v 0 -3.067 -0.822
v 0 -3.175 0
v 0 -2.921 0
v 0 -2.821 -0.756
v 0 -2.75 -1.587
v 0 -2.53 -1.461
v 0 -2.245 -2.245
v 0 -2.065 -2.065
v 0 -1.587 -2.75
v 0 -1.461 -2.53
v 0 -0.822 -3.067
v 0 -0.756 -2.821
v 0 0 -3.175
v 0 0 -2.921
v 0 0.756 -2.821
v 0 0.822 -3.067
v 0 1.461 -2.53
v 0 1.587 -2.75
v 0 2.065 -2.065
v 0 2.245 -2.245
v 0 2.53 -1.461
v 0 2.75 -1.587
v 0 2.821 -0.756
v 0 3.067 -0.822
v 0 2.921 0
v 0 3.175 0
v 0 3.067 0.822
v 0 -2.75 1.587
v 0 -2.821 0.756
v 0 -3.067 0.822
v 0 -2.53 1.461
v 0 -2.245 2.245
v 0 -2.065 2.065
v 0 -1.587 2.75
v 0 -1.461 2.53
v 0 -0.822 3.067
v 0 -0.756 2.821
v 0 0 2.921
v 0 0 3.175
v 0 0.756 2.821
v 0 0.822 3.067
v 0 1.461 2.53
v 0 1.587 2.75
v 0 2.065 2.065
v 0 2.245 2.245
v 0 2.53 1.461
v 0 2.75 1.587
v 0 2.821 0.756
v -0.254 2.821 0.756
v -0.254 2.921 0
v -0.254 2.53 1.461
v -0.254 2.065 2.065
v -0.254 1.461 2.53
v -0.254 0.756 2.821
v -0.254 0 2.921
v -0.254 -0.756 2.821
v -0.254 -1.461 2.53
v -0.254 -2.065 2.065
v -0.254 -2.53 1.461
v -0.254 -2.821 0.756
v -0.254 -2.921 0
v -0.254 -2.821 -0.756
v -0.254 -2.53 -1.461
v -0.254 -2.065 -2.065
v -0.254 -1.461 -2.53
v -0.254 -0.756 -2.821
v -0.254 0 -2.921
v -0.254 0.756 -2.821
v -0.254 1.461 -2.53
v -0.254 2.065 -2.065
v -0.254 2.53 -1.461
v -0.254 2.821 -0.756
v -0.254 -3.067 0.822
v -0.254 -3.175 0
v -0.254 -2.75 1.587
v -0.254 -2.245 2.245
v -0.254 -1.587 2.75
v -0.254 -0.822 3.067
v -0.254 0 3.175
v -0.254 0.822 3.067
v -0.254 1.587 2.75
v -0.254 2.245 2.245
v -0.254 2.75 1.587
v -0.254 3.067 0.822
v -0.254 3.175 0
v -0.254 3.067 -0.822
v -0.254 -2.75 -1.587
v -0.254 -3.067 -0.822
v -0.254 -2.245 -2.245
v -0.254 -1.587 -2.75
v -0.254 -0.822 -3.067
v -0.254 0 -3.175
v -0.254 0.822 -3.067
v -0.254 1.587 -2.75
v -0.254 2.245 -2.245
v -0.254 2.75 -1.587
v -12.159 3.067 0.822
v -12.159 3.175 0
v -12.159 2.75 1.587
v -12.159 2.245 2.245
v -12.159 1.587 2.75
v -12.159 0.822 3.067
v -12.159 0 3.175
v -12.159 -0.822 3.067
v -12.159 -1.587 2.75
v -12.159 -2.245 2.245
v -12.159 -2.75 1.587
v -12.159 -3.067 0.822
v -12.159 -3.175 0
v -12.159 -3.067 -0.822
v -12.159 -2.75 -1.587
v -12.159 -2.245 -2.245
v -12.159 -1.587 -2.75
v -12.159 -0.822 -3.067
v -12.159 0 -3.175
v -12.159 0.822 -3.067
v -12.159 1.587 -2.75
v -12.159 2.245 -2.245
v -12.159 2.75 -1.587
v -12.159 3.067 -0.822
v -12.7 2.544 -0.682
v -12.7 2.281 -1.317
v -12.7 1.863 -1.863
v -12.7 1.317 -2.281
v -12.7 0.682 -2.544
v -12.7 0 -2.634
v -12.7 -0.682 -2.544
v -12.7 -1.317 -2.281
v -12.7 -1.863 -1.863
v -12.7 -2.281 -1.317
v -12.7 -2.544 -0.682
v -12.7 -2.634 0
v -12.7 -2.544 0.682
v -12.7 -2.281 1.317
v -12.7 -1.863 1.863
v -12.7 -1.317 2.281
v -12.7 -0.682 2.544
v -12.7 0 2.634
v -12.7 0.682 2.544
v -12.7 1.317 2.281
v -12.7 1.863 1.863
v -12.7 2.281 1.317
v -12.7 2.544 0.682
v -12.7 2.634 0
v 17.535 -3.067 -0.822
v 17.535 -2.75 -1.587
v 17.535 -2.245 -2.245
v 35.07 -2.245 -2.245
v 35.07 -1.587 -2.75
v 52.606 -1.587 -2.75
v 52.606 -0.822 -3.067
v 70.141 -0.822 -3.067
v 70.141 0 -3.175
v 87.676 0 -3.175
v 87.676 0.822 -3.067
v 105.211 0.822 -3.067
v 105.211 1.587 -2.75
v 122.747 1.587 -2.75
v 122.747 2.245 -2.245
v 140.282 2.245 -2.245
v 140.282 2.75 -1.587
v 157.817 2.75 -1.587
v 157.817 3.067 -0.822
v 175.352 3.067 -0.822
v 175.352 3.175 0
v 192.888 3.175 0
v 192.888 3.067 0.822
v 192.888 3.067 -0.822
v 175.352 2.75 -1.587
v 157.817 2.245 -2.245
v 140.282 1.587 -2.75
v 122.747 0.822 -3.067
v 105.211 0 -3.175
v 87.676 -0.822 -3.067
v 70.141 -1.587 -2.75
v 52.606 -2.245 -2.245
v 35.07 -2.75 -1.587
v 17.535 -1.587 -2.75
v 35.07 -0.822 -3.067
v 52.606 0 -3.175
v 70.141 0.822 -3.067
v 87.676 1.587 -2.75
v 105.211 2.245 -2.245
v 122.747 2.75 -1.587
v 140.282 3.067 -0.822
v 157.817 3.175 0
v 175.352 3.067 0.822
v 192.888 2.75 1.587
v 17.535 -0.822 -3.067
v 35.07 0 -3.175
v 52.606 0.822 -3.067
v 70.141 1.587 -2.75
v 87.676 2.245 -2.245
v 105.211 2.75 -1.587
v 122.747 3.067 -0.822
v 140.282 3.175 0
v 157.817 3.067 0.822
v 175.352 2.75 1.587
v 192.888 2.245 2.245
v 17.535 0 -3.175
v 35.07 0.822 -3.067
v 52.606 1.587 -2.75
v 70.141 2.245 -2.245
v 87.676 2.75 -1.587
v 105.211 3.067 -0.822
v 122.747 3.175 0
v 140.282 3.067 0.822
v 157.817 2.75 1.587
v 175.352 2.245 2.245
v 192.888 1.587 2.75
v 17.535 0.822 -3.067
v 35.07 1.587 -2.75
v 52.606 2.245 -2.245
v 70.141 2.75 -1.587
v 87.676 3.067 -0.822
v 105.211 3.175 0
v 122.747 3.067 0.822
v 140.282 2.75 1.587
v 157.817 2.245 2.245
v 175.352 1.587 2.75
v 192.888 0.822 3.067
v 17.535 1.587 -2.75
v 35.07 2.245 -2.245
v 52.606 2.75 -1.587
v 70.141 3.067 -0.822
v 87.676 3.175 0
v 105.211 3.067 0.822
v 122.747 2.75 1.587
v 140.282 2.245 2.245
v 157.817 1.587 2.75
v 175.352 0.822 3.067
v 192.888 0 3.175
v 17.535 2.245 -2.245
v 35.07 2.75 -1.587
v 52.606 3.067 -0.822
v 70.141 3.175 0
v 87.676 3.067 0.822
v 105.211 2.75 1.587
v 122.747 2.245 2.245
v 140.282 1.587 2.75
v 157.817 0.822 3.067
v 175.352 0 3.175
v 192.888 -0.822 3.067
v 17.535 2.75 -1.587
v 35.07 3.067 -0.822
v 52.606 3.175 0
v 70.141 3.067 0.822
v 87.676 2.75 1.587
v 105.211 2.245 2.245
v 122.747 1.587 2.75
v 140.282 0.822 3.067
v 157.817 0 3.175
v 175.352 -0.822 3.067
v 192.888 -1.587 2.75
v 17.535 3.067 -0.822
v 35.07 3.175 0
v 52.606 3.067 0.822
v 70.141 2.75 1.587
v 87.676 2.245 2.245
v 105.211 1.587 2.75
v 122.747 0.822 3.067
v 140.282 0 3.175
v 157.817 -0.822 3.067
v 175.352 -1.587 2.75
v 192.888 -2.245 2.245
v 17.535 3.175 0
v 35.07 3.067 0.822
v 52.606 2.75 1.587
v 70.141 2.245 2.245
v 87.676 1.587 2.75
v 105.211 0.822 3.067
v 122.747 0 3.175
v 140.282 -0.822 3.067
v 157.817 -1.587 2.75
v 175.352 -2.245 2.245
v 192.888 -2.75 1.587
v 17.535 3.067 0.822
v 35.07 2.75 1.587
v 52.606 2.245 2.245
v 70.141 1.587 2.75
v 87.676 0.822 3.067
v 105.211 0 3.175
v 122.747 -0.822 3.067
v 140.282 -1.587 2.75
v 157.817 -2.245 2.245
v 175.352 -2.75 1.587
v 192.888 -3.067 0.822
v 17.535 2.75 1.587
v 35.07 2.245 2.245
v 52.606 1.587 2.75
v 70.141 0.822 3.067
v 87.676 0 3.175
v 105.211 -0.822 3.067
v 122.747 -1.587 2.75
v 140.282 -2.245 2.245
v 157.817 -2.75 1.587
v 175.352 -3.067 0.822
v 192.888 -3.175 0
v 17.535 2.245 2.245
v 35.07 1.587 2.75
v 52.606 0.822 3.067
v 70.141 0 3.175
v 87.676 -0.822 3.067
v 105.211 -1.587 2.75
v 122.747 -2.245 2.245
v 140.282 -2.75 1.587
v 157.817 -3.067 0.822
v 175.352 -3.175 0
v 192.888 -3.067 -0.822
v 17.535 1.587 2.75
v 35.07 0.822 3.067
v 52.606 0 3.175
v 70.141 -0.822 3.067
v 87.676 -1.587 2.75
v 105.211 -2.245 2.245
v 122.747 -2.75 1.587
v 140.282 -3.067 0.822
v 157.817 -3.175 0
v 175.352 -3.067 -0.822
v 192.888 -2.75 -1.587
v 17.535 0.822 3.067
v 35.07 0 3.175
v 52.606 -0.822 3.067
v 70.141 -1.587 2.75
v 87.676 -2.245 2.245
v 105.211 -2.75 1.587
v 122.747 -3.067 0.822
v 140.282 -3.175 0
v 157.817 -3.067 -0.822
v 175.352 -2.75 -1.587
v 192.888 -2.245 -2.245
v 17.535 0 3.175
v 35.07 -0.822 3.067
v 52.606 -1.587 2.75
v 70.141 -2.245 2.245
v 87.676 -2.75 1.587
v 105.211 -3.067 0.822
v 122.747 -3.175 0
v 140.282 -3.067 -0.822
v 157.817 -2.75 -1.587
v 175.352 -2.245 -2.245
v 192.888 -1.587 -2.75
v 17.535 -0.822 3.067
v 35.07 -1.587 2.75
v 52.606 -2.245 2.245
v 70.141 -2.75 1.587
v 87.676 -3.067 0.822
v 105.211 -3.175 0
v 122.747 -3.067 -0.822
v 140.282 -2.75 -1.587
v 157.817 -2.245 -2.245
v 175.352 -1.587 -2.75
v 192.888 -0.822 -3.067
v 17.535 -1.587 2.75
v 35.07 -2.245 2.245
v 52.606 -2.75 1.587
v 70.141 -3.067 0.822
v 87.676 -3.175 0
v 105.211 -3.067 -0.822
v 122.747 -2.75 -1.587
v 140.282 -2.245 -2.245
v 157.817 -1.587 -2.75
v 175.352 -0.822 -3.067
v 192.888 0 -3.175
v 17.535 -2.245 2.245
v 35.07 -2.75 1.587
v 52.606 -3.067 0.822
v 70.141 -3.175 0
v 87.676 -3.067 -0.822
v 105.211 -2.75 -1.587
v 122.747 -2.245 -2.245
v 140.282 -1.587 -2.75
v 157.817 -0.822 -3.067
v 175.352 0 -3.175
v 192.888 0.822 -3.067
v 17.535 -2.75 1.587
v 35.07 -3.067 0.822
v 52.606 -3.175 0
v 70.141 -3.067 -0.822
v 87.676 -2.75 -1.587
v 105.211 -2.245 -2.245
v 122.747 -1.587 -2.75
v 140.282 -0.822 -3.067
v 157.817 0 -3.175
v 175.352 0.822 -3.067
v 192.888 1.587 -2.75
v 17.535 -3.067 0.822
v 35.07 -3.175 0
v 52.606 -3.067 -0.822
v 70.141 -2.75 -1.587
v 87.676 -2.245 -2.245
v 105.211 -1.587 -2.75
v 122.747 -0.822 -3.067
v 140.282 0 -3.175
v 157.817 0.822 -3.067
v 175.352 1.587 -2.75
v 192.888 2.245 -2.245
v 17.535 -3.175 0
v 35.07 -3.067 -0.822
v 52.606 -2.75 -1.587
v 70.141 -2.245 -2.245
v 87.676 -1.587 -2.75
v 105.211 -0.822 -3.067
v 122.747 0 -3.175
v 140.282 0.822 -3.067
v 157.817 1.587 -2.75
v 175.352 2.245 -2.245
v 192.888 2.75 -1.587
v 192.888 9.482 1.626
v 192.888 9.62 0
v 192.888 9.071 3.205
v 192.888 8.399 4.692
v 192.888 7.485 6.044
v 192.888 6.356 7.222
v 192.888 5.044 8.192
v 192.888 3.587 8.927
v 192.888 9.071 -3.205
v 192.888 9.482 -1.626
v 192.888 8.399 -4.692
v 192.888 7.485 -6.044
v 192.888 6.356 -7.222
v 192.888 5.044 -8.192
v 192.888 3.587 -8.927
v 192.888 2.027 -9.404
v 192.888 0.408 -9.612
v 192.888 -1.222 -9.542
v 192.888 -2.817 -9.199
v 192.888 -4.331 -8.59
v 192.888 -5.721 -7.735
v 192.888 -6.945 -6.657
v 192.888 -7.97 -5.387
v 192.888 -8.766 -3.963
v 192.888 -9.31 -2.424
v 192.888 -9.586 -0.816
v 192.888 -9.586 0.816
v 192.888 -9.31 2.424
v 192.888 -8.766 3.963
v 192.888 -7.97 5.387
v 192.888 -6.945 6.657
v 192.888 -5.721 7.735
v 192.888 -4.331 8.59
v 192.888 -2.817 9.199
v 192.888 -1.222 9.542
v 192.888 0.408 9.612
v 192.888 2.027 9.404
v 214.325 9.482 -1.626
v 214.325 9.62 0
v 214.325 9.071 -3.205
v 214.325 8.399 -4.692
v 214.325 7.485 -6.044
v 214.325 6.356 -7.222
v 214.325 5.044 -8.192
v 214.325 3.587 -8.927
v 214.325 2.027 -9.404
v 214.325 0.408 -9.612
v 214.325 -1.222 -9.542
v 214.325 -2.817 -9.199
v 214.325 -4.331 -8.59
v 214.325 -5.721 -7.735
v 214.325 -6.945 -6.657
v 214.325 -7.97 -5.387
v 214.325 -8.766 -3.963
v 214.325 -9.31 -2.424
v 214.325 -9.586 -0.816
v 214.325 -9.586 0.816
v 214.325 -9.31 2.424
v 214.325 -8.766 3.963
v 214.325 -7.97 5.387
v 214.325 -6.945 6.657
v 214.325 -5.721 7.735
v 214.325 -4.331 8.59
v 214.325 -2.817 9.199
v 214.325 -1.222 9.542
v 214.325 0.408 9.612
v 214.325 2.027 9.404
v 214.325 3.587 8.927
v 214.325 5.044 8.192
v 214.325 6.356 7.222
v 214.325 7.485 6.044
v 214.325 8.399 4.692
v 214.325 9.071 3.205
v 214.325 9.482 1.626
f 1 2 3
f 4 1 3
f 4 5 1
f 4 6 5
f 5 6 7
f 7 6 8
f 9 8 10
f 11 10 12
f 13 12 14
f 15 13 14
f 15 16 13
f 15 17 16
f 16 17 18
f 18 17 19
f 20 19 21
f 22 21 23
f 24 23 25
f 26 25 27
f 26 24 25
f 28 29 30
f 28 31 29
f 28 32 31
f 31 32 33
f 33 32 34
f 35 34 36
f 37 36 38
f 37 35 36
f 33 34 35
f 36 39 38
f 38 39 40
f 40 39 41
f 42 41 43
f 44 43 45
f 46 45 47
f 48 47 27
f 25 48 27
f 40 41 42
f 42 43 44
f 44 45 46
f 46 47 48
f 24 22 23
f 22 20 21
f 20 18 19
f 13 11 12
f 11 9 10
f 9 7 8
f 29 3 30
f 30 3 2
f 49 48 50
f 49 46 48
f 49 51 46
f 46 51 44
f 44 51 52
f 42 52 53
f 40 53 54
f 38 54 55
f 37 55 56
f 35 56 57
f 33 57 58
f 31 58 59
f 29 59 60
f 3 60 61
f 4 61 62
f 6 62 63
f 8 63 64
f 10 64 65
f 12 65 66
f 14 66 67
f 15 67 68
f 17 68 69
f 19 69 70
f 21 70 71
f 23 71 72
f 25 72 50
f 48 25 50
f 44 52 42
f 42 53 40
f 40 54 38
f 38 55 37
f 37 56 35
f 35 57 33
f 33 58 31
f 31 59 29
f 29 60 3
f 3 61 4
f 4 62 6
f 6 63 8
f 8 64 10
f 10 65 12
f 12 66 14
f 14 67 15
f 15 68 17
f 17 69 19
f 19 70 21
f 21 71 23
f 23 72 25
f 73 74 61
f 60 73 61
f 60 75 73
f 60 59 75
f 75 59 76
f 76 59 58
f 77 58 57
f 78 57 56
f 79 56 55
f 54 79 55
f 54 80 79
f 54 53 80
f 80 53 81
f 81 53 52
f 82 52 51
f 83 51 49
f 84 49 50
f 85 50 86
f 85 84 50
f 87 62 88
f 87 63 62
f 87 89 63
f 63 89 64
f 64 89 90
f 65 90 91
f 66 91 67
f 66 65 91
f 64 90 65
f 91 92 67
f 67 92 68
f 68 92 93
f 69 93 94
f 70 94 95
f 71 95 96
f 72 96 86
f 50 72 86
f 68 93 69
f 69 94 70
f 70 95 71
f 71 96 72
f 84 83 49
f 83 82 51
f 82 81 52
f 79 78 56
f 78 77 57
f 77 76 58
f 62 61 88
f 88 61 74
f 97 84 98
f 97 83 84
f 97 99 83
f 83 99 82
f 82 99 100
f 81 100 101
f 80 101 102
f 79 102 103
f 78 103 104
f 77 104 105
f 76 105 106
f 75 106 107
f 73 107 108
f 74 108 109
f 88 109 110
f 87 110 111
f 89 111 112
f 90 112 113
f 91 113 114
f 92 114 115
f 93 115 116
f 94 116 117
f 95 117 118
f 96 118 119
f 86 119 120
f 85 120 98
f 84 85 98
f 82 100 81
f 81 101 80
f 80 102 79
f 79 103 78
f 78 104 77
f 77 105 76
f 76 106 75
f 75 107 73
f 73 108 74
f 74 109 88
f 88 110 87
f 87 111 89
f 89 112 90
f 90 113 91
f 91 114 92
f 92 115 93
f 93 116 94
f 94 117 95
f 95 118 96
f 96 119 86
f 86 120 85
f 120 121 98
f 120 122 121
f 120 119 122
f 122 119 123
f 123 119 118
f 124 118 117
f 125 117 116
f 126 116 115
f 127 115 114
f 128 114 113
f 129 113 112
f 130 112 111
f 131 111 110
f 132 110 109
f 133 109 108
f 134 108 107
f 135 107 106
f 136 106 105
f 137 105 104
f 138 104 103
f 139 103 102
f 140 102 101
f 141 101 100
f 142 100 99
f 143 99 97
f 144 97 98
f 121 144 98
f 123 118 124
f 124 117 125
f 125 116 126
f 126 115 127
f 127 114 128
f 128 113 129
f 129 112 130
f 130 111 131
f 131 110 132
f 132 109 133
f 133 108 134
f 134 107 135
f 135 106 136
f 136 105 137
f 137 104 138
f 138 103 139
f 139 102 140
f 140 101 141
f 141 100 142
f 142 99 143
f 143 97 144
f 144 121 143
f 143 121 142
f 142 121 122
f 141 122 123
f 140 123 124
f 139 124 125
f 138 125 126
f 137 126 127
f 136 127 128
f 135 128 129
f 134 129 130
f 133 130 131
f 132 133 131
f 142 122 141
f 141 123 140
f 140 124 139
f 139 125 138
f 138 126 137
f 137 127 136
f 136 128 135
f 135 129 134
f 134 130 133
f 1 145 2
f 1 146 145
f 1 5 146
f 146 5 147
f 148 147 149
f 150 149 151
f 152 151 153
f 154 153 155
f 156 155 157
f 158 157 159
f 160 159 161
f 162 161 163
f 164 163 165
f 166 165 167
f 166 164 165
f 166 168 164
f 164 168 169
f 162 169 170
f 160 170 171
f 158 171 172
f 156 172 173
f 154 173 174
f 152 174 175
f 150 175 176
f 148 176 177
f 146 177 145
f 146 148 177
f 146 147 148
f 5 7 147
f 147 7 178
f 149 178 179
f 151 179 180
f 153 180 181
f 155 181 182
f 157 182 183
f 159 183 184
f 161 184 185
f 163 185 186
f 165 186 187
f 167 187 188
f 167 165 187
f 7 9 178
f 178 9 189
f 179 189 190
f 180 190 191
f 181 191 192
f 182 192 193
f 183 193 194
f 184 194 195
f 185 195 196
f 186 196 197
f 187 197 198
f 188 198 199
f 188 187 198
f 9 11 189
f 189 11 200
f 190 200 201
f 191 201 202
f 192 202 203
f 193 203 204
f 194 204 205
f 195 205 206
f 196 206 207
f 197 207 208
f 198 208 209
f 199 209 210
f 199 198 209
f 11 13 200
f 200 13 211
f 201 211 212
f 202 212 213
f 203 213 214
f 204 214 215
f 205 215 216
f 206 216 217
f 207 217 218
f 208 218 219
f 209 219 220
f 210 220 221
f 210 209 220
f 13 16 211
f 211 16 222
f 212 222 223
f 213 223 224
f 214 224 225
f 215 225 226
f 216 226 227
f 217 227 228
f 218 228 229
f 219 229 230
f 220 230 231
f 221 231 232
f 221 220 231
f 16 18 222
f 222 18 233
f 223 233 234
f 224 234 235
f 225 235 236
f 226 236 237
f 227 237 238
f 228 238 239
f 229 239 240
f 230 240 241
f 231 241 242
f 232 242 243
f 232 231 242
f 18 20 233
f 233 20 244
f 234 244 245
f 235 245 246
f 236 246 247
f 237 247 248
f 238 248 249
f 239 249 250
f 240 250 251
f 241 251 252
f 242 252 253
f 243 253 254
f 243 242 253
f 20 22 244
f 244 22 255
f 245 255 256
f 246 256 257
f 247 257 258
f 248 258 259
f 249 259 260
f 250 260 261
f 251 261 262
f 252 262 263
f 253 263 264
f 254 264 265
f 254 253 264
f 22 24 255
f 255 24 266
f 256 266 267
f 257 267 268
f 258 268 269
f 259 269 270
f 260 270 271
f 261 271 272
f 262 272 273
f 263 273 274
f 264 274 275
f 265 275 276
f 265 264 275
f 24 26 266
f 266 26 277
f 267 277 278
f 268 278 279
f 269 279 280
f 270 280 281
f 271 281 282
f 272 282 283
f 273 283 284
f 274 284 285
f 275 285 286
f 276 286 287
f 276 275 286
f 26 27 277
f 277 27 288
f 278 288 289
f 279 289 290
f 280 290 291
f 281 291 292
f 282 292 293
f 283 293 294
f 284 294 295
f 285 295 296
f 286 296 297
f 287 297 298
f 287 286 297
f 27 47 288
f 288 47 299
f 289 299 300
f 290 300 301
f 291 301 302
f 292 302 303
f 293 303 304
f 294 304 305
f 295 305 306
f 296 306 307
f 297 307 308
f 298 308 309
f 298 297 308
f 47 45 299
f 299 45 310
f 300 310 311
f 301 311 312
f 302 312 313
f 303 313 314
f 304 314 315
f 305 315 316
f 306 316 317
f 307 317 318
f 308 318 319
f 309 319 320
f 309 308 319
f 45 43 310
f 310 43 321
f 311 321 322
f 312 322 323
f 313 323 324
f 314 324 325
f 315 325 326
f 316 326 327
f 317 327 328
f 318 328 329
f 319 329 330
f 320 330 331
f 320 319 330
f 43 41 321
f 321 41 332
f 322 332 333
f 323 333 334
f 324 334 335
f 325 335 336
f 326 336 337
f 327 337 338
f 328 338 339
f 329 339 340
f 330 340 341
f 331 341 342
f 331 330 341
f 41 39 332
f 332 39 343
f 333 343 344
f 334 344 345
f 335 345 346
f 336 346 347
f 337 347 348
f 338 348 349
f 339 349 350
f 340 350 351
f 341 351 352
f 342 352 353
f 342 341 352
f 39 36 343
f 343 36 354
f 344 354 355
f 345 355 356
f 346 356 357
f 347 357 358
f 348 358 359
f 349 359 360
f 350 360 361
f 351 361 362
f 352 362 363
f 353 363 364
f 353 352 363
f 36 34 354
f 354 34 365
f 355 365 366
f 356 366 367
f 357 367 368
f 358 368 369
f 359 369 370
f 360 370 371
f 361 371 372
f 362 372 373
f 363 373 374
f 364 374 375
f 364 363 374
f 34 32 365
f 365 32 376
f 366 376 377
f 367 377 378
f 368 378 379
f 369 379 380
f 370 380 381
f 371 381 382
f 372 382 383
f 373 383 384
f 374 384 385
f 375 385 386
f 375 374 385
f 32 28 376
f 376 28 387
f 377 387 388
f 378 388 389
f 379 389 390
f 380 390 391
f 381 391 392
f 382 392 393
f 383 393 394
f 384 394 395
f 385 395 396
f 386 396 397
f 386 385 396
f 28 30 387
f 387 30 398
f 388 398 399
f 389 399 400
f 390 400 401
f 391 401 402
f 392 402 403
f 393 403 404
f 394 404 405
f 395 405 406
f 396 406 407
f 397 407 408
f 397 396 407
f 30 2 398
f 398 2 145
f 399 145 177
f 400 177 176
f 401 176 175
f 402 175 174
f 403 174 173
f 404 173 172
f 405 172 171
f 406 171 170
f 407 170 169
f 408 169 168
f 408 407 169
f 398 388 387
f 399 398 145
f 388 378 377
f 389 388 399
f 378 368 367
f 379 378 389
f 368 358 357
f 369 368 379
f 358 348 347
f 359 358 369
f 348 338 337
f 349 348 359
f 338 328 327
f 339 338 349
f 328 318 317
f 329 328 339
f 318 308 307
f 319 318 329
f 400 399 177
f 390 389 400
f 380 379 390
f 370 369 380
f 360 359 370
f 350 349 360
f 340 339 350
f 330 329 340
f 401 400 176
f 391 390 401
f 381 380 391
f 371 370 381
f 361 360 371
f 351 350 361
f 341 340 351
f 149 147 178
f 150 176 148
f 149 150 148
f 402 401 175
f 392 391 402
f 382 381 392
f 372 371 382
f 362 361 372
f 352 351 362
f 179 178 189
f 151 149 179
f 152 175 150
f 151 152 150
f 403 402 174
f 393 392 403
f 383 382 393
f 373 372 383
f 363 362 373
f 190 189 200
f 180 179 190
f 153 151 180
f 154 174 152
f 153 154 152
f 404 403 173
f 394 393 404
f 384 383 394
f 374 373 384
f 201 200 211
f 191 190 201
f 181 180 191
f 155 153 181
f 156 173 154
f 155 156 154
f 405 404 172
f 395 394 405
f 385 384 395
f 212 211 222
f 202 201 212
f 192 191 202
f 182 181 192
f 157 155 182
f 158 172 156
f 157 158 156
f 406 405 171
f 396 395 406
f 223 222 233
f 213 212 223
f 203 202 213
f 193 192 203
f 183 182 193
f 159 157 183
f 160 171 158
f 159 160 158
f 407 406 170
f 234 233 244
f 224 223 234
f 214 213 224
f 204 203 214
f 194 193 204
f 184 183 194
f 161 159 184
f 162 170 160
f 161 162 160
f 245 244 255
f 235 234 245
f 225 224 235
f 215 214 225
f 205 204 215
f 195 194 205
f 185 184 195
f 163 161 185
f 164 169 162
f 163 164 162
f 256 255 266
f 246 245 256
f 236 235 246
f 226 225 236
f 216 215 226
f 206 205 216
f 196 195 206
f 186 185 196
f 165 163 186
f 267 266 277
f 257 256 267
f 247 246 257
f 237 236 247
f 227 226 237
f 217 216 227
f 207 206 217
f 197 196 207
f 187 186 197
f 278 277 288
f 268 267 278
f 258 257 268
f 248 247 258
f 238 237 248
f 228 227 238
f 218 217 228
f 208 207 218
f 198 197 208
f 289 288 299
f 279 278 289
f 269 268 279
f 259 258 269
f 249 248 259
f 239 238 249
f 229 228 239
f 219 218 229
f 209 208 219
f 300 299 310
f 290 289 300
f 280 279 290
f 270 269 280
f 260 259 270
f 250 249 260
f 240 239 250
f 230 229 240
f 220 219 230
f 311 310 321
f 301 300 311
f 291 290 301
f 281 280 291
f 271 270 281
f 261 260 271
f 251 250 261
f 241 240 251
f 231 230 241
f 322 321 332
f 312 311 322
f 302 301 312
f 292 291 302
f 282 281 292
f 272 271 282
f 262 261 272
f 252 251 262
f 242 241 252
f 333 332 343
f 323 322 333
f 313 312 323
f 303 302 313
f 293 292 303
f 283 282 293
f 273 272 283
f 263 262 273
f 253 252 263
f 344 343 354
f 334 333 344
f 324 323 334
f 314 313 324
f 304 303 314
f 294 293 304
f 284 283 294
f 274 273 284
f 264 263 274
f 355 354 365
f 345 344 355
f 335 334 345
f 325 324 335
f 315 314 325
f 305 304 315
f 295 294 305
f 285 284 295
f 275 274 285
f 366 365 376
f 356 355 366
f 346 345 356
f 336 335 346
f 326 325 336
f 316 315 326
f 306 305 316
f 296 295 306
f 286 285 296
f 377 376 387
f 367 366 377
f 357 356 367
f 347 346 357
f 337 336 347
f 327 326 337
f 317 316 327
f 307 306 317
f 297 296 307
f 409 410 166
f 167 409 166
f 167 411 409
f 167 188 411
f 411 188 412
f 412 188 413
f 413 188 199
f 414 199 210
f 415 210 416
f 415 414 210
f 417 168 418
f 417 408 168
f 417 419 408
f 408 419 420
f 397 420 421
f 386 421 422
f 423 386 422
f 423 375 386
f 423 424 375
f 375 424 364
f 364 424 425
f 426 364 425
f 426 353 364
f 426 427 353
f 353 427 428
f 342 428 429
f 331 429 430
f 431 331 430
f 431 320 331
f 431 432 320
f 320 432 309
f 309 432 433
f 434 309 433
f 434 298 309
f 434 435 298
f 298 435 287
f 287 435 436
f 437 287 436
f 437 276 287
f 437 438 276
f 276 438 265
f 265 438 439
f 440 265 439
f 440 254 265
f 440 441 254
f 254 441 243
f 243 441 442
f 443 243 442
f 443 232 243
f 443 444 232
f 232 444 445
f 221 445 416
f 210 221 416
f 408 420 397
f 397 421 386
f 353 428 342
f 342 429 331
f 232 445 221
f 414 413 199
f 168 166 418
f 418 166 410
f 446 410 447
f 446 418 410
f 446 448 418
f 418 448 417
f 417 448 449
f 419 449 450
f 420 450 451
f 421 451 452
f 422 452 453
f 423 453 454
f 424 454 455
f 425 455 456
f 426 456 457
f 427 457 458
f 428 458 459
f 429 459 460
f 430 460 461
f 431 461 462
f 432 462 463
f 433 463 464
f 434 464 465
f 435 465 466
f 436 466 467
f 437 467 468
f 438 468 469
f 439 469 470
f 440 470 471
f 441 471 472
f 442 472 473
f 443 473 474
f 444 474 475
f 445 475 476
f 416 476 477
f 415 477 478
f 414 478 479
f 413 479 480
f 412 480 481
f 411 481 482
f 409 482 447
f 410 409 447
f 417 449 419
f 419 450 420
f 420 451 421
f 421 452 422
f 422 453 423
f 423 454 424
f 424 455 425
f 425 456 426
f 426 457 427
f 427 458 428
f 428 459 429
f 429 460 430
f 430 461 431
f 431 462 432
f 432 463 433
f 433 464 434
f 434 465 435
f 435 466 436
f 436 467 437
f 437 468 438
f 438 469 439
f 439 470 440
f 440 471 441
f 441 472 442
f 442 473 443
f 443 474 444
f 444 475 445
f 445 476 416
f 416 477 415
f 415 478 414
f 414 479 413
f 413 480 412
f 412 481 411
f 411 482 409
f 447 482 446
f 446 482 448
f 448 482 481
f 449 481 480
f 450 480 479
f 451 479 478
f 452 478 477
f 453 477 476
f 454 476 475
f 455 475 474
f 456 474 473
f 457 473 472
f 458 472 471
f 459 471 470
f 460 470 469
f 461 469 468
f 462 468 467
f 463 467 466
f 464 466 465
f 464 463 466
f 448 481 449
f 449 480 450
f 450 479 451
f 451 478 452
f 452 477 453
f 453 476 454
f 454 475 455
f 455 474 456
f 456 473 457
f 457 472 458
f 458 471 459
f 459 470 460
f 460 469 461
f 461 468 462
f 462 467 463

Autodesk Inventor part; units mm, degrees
sketch "Sketch_1" plane through (0, 0, 0) normal (0, 0, 1) x (1, 0, 0)
  line L0 (214.3252, 0) -> (0, 0)
  line L1 (0, 0) -> (0, 3.175)
  line L2 (0, 3.175) -> (192.8876, 3.175)
  line L3 (192.8876, 3.175) -> (192.8876, 9.6203)
  line L4 (192.8876, 9.6203) -> (214.3252, 9.6203)
  line L5 (214.3252, 9.6203) -> (214.3252, 0)
  line L6 (214.3252, 0) -> (0, 0)
revolve "Revolution1" add sketch "Sketch_1" angle 360 about axis through (214.3252, 0, 0) along (1, 0, 0)
sketch "Sketch_3" plane through (0, 0, 0) normal (0, 0, 1) x (1, 0, 0)
  line L0 (0, 0) -> (-12.7, 0)
  line L1 (-12.7, 0) -> (-12.7, 2.634)
  line L2 (-12.7, 2.634) -> (-12.159, 3.175)
  line L3 (-12.159, 3.175) -> (0, 3.175)
  line L4 (0, 3.175) -> (0, 0)
  line L5 (0, 0) -> (-12.7, 0)
revolve "Revolution2" add sketch "Sketch_3" angle 360 about axis through (0, 0, 0) along (1, 0, 0)
thread "Thread1" size "1/4-28 UNF" class "3A" standard "ANSI Unified Screw Threads" length 12.7 offset 192.8876
sketch "Sketch_30" plane through (0, 0, 0) normal (0, 0, 1) x (1, 0, 0)
  line L0 (0, 0) -> (-0.254, 0)
  line L1 (-0.254, 3.429) -> (-0.254, 2.921)
  line L2 (-0.254, 2.921) -> (0, 2.921)
  line L3 (0, 2.921) -> (0, 3.429)
  line L4 (0, 3.429) -> (-0.254, 3.429)
revolve "Revolution3" cut sketch "Sketch_30" angle 360 about axis through (0, 0, 0) along (1, 0, 0)
ref_plane "rod_cp_XY" through (0, 0, 0) normal (1, 0, 0) x (0, 0, -1)
ref_plane "rod_cp_YZ" through (0, 0, 0) normal (0, 0, -1) x (0, 1, 0)
ref_plane "rod_cp_ZX" through (0, 0, 0) normal (0, 1, 0) x (1, 0, 0)
ref_plane "to_rod_clevis_XY" through (-12.7, 0, 0) normal (1, 0, 0) x (0, 0, -1)
ref_plane "to_rod_clevis_YZ" through (-12.7, 0, 0) normal (0, 0, -1) x (0, 1, 0)
ref_plane "to_rod_clevis_ZX" through (-12.7, 0, 0) normal (0, 1, 0) x (1, 0, 0)
ref_plane "rl2_XY" through (0, 0, 0) normal (1, 0, 0) x (0, 0, -1)
ref_plane "rl2_YZ" through (0, 0, 0) normal (0, 0, -1) x (0, 1, 0)
ref_plane "rl2_ZX" through (0, 0, 0) normal (0, 1, 0) x (1, 0, 0)
ref_plane "rl1_XY" through (-12.7, 0, 0) normal (1, 0, 0) x (0, 0, -1)
ref_plane "rl1_YZ" through (-12.7, 0, 0) normal (0, 0, -1) x (0, 1, 0)
ref_plane "rl1_ZX" through (-12.7, 0, 0) normal (0, 1, 0) x (1, 0, 0)
ref_plane "thd1_XY" through (-12.7, 3.175, 0) normal (1, 0, 0) x (0, 0, -1)
ref_plane "thd1_YZ" through (-12.7, 3.175, 0) normal (0, 0, -1) x (0, 1, 0)
ref_plane "thd1_ZX" through (-12.7, 3.175, 0) normal (0, 1, 0) x (1, 0, 0)
ref_plane "thd2_XY" through (-12.7, -3.175, 0) normal (1, 0, 0) x (0, 0, -1)
ref_plane "thd2_YZ" through (-12.7, -3.175, 0) normal (0, 0, -1) x (0, 1, 0)
ref_plane "thd2_ZX" through (-12.7, -3.175, 0) normal (0, 1, 0) x (1, 0, 0)
ref_plane "dia1_XY" through (0, 3.175, 0) normal (1, 0, 0) x (0, 0, -1)
ref_plane "dia1_YZ" through (0, 3.175, 0) normal (0, 0, -1) x (0, 1, 0)
ref_plane "dia1_ZX" through (0, 3.175, 0) normal (0, 1, 0) x (1, 0, 0)
ref_plane "dia2_XY" through (0, -3.175, 0) normal (1, 0, 0) x (0, 0, -1)
ref_plane "dia2_YZ" through (0, -3.175, 0) normal (0, 0, -1) x (0, 1, 0)
ref_plane "dia2_ZX" through (0, -3.175, 0) normal (0, 1, 0) x (1, 0, 0)
ref_plane "hh1_XY" through (244.4496, 0, 0) normal (0, 0, 1) x (1, 0, 0)
ref_plane "hh1_YZ" through (244.4496, 0, 0) normal (1, 0, 0) x (0, 1, 0)
ref_plane "hh1_ZX" through (244.4496, 0, 0) normal (0, 1, 0) x (0, 0, 1)
ref_plane "hh2_XY" through (250.8504, 0, 0) normal (0, 0, 1) x (1, 0, 0)
ref_plane "hh2_YZ" through (250.8504, 0, 0) normal (1, 0, 0) x (0, 1, 0)
ref_plane "hh2_ZX" through (250.8504, 0, 0) normal (0, 1, 0) x (0, 0, 1)
ref_plane "dia12_XY" through (0, 0, 10.9537) normal (1, 0, 0) x (0, 0, -1)
ref_plane "dia12_YZ" through (0, 0, 10.9537) normal (0, 0, -1) x (0, 1, 0)
ref_plane "dia12_ZX" through (0, 0, 10.9537) normal (0, 1, 0) x (1, 0, 0)
ref_plane "dia22_XY" through (0, 0, -10.9537) normal (1, 0, 0) x (0, 0, -1)
ref_plane "dia22_YZ" through (0, 0, -10.9537) normal (0, 0, -1) x (0, 1, 0)
ref_plane "dia22_ZX" through (0, 0, -10.9537) normal (0, 1, 0) x (1, 0, 0)
properties part number "046-DXP0_rod"
